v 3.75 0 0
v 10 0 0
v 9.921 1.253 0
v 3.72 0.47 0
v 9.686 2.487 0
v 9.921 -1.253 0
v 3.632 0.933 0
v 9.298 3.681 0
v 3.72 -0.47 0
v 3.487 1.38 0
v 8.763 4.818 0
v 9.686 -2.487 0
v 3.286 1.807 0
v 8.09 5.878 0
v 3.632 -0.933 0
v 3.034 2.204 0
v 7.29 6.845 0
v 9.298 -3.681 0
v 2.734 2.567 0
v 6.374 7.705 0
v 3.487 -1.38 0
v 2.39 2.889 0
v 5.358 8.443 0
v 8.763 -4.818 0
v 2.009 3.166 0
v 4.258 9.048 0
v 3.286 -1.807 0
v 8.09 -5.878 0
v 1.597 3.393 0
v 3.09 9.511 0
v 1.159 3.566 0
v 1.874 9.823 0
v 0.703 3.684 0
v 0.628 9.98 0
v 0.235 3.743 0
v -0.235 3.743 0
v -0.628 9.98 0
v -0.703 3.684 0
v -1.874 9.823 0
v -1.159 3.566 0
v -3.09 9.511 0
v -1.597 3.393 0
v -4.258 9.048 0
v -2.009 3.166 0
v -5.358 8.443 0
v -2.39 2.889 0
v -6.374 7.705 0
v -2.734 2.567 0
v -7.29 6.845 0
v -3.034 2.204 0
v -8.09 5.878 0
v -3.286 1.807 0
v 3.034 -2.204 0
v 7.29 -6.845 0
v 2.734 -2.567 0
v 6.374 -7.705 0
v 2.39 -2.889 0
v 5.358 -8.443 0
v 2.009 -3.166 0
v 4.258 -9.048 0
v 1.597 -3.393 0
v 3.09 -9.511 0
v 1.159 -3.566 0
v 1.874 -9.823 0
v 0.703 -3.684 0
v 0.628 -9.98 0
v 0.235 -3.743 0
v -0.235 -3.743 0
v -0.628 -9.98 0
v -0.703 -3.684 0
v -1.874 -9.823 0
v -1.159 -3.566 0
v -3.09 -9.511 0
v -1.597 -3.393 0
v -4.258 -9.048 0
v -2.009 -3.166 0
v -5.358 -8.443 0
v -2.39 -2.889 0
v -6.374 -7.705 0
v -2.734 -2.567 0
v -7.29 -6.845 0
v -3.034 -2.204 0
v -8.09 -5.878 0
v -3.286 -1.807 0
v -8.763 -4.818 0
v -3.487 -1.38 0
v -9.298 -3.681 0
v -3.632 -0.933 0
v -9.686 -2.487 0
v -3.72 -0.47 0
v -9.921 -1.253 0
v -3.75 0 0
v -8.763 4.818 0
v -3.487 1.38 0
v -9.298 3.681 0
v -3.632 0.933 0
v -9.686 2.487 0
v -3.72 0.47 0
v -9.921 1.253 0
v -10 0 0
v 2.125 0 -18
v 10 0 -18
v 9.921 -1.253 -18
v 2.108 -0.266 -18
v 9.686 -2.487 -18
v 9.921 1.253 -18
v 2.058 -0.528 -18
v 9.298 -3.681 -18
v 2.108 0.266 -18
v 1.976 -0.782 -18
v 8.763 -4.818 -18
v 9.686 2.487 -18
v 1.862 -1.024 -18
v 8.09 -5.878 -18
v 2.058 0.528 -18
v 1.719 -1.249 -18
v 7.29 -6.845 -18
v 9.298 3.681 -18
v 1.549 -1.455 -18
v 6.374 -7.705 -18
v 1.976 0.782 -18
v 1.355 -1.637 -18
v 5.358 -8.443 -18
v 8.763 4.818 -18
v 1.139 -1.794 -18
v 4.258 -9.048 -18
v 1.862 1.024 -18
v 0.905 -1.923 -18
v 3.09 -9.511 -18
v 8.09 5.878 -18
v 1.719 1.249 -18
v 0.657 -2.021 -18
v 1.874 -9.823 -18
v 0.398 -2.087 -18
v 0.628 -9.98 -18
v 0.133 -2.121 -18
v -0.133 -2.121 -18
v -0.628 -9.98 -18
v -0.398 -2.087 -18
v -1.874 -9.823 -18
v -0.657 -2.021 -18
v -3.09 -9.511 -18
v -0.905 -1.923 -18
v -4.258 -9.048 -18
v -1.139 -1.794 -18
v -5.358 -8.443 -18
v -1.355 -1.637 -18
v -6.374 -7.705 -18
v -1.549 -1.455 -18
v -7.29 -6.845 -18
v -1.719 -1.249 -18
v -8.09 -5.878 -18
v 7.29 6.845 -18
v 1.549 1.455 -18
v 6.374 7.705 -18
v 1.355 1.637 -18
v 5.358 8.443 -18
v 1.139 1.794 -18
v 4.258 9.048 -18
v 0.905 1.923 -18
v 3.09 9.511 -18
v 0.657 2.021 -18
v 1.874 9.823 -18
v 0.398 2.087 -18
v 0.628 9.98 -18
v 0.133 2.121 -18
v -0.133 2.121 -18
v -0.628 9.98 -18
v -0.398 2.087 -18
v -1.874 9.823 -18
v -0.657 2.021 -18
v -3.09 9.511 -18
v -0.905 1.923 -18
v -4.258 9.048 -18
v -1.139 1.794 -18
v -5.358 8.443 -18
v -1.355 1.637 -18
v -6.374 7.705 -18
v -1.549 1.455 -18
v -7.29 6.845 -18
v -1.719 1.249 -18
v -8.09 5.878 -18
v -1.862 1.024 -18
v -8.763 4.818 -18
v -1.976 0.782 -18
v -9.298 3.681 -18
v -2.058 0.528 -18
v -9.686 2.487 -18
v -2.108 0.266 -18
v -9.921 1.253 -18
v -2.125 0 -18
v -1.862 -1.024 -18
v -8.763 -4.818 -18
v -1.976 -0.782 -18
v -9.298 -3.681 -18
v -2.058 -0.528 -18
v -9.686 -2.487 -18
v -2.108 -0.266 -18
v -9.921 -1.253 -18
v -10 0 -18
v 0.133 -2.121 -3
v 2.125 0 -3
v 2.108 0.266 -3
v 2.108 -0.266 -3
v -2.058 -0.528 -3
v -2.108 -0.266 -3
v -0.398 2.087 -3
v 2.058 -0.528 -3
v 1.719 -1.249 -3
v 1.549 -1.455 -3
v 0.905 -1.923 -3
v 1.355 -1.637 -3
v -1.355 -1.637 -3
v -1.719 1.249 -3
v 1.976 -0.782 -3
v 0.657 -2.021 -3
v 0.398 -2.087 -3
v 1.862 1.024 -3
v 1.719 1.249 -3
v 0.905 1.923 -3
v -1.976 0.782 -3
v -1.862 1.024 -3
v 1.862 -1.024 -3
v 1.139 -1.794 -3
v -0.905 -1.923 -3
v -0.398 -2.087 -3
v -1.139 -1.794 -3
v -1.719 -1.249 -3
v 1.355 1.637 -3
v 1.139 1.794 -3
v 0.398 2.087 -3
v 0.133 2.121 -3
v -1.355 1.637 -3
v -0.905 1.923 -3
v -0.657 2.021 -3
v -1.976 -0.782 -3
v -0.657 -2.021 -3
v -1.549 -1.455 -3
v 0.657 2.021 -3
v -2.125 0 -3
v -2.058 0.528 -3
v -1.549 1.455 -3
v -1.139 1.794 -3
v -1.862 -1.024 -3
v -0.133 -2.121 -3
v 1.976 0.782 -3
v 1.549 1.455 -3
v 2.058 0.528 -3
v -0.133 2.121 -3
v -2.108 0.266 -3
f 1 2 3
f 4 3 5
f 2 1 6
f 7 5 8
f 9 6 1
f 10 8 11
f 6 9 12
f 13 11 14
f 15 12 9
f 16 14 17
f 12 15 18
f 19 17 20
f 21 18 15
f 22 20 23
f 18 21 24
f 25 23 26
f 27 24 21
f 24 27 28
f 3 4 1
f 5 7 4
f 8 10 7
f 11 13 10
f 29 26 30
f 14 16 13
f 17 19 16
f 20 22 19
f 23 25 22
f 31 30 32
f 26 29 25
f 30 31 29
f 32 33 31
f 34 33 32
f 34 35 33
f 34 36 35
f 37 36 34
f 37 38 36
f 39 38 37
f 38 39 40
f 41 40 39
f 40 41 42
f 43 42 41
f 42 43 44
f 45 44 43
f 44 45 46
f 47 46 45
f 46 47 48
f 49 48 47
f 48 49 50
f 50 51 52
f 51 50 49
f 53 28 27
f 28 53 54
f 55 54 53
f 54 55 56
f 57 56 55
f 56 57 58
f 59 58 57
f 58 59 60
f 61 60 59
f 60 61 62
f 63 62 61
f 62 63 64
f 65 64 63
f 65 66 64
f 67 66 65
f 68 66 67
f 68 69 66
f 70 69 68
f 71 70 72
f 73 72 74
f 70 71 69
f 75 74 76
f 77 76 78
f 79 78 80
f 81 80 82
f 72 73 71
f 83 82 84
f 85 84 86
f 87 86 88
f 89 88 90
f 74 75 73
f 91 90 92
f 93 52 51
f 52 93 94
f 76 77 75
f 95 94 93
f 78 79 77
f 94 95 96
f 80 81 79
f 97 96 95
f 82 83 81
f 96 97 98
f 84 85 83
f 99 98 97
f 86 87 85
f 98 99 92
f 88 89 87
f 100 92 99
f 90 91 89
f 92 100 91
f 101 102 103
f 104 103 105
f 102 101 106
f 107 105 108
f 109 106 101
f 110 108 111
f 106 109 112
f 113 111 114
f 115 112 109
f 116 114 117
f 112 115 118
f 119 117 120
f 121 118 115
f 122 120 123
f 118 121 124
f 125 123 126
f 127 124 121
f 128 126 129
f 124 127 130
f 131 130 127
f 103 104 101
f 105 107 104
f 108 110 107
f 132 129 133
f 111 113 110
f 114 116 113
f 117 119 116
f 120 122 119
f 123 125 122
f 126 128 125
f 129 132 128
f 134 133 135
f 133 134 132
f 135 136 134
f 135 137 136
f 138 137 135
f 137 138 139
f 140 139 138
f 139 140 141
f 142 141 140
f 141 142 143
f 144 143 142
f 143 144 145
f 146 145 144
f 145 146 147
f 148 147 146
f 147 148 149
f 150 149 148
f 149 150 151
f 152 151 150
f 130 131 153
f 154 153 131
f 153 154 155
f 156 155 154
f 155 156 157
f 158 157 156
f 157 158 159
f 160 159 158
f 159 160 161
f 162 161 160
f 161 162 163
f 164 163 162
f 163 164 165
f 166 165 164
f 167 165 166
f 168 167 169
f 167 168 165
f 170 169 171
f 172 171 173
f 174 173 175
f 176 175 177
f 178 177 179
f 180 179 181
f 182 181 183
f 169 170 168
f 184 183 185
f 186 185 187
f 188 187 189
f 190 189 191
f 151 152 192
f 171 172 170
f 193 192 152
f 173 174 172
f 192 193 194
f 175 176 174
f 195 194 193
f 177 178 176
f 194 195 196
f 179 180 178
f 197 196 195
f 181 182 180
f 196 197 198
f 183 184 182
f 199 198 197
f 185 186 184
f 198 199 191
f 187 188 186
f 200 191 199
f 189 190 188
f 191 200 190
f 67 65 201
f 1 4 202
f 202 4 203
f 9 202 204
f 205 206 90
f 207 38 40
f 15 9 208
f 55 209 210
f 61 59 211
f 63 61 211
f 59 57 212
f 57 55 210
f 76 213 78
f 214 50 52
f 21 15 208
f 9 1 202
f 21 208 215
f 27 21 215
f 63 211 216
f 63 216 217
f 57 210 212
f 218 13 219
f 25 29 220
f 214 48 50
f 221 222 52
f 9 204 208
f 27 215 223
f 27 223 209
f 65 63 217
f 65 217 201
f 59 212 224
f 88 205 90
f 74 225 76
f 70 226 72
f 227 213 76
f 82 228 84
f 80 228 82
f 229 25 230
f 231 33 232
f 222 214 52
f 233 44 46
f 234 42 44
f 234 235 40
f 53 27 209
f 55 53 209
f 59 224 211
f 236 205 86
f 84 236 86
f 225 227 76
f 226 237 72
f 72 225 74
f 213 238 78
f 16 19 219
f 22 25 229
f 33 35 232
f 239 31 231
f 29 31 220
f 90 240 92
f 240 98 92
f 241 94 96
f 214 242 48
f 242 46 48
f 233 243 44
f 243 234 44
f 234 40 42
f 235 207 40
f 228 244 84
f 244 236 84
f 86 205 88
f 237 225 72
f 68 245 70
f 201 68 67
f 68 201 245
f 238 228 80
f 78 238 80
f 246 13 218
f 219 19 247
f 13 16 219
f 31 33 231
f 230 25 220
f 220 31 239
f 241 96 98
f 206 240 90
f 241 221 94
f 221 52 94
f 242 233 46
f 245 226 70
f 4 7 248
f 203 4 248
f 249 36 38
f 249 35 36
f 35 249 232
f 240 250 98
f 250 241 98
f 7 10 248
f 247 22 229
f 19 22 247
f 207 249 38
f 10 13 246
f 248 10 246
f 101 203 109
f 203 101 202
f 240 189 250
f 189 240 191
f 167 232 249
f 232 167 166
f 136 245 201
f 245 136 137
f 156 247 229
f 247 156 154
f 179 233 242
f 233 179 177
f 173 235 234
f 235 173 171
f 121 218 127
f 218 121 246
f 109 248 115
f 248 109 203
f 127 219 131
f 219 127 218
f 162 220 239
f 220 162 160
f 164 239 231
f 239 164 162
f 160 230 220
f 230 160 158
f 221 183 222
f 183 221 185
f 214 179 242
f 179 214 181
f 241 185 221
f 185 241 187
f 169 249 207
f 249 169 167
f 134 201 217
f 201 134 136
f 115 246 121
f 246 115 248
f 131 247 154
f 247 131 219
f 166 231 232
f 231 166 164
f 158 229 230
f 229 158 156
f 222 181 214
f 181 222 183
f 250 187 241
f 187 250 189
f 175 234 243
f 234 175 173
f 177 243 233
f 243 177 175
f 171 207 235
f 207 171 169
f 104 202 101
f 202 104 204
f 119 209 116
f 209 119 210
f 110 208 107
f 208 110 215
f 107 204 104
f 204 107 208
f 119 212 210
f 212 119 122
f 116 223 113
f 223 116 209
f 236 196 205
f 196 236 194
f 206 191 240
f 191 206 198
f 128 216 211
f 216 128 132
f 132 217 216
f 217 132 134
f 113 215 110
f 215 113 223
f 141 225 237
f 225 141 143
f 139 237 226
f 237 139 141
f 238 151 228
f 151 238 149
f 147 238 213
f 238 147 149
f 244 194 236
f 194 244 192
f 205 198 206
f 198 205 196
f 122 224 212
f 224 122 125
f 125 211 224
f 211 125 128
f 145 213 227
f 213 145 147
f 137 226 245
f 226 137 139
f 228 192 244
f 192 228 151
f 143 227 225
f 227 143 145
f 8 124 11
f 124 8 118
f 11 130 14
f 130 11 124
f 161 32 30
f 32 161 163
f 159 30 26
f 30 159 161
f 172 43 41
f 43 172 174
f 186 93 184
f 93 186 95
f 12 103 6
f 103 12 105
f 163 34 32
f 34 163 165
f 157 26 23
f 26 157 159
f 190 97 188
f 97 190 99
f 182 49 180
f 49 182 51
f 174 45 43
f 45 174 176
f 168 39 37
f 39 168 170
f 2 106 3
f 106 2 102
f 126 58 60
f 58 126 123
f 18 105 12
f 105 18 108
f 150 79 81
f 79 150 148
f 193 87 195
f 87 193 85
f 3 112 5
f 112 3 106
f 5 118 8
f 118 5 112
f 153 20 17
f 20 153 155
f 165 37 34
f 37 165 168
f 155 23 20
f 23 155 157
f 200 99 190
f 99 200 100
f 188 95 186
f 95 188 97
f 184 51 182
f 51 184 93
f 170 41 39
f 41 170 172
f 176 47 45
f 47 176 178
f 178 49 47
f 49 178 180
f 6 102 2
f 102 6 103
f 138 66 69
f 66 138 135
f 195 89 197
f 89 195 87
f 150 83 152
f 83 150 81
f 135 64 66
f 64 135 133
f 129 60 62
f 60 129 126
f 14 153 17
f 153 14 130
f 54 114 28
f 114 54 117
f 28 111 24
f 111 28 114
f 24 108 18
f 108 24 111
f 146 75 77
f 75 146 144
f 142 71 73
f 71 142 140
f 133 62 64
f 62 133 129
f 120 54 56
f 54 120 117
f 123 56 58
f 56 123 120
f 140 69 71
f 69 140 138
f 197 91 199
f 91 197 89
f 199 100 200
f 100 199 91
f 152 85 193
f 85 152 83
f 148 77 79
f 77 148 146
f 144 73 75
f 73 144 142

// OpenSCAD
$fn = 50;


difference() {
	union() {
		translate(v = [0, 0, -18.0000000000]) {
			cylinder(h = 18, r = 10.0000000000);
		}
		cylinder(h = 0, r = 20.0000000000);
	}
	union() {
		translate(v = [0, 0, 0]) {
			rotate(a = [0, 0, 0]) {
				difference() {
					union() {
						#translate(v = [0, 0, -18.0000000000]) {
							cylinder(h = 18, r = 2.0000000000);
						}
						#translate(v = [0, 0, -3]) {
							cylinder(h = 3, r = 10.0000000000, r1 = 2.1250000000, r2 = 3.7500000000);
						}
						#translate(v = [0, 0, -18.0000000000]) {
							cylinder(h = 18, r = 2.1250000000);
						}
						#translate(v = [0, 0, -18.0000000000]) {
							cylinder(h = 18, r = 2.0000000000);
						}
					}
					union();
				}
			}
		}
	}
}
